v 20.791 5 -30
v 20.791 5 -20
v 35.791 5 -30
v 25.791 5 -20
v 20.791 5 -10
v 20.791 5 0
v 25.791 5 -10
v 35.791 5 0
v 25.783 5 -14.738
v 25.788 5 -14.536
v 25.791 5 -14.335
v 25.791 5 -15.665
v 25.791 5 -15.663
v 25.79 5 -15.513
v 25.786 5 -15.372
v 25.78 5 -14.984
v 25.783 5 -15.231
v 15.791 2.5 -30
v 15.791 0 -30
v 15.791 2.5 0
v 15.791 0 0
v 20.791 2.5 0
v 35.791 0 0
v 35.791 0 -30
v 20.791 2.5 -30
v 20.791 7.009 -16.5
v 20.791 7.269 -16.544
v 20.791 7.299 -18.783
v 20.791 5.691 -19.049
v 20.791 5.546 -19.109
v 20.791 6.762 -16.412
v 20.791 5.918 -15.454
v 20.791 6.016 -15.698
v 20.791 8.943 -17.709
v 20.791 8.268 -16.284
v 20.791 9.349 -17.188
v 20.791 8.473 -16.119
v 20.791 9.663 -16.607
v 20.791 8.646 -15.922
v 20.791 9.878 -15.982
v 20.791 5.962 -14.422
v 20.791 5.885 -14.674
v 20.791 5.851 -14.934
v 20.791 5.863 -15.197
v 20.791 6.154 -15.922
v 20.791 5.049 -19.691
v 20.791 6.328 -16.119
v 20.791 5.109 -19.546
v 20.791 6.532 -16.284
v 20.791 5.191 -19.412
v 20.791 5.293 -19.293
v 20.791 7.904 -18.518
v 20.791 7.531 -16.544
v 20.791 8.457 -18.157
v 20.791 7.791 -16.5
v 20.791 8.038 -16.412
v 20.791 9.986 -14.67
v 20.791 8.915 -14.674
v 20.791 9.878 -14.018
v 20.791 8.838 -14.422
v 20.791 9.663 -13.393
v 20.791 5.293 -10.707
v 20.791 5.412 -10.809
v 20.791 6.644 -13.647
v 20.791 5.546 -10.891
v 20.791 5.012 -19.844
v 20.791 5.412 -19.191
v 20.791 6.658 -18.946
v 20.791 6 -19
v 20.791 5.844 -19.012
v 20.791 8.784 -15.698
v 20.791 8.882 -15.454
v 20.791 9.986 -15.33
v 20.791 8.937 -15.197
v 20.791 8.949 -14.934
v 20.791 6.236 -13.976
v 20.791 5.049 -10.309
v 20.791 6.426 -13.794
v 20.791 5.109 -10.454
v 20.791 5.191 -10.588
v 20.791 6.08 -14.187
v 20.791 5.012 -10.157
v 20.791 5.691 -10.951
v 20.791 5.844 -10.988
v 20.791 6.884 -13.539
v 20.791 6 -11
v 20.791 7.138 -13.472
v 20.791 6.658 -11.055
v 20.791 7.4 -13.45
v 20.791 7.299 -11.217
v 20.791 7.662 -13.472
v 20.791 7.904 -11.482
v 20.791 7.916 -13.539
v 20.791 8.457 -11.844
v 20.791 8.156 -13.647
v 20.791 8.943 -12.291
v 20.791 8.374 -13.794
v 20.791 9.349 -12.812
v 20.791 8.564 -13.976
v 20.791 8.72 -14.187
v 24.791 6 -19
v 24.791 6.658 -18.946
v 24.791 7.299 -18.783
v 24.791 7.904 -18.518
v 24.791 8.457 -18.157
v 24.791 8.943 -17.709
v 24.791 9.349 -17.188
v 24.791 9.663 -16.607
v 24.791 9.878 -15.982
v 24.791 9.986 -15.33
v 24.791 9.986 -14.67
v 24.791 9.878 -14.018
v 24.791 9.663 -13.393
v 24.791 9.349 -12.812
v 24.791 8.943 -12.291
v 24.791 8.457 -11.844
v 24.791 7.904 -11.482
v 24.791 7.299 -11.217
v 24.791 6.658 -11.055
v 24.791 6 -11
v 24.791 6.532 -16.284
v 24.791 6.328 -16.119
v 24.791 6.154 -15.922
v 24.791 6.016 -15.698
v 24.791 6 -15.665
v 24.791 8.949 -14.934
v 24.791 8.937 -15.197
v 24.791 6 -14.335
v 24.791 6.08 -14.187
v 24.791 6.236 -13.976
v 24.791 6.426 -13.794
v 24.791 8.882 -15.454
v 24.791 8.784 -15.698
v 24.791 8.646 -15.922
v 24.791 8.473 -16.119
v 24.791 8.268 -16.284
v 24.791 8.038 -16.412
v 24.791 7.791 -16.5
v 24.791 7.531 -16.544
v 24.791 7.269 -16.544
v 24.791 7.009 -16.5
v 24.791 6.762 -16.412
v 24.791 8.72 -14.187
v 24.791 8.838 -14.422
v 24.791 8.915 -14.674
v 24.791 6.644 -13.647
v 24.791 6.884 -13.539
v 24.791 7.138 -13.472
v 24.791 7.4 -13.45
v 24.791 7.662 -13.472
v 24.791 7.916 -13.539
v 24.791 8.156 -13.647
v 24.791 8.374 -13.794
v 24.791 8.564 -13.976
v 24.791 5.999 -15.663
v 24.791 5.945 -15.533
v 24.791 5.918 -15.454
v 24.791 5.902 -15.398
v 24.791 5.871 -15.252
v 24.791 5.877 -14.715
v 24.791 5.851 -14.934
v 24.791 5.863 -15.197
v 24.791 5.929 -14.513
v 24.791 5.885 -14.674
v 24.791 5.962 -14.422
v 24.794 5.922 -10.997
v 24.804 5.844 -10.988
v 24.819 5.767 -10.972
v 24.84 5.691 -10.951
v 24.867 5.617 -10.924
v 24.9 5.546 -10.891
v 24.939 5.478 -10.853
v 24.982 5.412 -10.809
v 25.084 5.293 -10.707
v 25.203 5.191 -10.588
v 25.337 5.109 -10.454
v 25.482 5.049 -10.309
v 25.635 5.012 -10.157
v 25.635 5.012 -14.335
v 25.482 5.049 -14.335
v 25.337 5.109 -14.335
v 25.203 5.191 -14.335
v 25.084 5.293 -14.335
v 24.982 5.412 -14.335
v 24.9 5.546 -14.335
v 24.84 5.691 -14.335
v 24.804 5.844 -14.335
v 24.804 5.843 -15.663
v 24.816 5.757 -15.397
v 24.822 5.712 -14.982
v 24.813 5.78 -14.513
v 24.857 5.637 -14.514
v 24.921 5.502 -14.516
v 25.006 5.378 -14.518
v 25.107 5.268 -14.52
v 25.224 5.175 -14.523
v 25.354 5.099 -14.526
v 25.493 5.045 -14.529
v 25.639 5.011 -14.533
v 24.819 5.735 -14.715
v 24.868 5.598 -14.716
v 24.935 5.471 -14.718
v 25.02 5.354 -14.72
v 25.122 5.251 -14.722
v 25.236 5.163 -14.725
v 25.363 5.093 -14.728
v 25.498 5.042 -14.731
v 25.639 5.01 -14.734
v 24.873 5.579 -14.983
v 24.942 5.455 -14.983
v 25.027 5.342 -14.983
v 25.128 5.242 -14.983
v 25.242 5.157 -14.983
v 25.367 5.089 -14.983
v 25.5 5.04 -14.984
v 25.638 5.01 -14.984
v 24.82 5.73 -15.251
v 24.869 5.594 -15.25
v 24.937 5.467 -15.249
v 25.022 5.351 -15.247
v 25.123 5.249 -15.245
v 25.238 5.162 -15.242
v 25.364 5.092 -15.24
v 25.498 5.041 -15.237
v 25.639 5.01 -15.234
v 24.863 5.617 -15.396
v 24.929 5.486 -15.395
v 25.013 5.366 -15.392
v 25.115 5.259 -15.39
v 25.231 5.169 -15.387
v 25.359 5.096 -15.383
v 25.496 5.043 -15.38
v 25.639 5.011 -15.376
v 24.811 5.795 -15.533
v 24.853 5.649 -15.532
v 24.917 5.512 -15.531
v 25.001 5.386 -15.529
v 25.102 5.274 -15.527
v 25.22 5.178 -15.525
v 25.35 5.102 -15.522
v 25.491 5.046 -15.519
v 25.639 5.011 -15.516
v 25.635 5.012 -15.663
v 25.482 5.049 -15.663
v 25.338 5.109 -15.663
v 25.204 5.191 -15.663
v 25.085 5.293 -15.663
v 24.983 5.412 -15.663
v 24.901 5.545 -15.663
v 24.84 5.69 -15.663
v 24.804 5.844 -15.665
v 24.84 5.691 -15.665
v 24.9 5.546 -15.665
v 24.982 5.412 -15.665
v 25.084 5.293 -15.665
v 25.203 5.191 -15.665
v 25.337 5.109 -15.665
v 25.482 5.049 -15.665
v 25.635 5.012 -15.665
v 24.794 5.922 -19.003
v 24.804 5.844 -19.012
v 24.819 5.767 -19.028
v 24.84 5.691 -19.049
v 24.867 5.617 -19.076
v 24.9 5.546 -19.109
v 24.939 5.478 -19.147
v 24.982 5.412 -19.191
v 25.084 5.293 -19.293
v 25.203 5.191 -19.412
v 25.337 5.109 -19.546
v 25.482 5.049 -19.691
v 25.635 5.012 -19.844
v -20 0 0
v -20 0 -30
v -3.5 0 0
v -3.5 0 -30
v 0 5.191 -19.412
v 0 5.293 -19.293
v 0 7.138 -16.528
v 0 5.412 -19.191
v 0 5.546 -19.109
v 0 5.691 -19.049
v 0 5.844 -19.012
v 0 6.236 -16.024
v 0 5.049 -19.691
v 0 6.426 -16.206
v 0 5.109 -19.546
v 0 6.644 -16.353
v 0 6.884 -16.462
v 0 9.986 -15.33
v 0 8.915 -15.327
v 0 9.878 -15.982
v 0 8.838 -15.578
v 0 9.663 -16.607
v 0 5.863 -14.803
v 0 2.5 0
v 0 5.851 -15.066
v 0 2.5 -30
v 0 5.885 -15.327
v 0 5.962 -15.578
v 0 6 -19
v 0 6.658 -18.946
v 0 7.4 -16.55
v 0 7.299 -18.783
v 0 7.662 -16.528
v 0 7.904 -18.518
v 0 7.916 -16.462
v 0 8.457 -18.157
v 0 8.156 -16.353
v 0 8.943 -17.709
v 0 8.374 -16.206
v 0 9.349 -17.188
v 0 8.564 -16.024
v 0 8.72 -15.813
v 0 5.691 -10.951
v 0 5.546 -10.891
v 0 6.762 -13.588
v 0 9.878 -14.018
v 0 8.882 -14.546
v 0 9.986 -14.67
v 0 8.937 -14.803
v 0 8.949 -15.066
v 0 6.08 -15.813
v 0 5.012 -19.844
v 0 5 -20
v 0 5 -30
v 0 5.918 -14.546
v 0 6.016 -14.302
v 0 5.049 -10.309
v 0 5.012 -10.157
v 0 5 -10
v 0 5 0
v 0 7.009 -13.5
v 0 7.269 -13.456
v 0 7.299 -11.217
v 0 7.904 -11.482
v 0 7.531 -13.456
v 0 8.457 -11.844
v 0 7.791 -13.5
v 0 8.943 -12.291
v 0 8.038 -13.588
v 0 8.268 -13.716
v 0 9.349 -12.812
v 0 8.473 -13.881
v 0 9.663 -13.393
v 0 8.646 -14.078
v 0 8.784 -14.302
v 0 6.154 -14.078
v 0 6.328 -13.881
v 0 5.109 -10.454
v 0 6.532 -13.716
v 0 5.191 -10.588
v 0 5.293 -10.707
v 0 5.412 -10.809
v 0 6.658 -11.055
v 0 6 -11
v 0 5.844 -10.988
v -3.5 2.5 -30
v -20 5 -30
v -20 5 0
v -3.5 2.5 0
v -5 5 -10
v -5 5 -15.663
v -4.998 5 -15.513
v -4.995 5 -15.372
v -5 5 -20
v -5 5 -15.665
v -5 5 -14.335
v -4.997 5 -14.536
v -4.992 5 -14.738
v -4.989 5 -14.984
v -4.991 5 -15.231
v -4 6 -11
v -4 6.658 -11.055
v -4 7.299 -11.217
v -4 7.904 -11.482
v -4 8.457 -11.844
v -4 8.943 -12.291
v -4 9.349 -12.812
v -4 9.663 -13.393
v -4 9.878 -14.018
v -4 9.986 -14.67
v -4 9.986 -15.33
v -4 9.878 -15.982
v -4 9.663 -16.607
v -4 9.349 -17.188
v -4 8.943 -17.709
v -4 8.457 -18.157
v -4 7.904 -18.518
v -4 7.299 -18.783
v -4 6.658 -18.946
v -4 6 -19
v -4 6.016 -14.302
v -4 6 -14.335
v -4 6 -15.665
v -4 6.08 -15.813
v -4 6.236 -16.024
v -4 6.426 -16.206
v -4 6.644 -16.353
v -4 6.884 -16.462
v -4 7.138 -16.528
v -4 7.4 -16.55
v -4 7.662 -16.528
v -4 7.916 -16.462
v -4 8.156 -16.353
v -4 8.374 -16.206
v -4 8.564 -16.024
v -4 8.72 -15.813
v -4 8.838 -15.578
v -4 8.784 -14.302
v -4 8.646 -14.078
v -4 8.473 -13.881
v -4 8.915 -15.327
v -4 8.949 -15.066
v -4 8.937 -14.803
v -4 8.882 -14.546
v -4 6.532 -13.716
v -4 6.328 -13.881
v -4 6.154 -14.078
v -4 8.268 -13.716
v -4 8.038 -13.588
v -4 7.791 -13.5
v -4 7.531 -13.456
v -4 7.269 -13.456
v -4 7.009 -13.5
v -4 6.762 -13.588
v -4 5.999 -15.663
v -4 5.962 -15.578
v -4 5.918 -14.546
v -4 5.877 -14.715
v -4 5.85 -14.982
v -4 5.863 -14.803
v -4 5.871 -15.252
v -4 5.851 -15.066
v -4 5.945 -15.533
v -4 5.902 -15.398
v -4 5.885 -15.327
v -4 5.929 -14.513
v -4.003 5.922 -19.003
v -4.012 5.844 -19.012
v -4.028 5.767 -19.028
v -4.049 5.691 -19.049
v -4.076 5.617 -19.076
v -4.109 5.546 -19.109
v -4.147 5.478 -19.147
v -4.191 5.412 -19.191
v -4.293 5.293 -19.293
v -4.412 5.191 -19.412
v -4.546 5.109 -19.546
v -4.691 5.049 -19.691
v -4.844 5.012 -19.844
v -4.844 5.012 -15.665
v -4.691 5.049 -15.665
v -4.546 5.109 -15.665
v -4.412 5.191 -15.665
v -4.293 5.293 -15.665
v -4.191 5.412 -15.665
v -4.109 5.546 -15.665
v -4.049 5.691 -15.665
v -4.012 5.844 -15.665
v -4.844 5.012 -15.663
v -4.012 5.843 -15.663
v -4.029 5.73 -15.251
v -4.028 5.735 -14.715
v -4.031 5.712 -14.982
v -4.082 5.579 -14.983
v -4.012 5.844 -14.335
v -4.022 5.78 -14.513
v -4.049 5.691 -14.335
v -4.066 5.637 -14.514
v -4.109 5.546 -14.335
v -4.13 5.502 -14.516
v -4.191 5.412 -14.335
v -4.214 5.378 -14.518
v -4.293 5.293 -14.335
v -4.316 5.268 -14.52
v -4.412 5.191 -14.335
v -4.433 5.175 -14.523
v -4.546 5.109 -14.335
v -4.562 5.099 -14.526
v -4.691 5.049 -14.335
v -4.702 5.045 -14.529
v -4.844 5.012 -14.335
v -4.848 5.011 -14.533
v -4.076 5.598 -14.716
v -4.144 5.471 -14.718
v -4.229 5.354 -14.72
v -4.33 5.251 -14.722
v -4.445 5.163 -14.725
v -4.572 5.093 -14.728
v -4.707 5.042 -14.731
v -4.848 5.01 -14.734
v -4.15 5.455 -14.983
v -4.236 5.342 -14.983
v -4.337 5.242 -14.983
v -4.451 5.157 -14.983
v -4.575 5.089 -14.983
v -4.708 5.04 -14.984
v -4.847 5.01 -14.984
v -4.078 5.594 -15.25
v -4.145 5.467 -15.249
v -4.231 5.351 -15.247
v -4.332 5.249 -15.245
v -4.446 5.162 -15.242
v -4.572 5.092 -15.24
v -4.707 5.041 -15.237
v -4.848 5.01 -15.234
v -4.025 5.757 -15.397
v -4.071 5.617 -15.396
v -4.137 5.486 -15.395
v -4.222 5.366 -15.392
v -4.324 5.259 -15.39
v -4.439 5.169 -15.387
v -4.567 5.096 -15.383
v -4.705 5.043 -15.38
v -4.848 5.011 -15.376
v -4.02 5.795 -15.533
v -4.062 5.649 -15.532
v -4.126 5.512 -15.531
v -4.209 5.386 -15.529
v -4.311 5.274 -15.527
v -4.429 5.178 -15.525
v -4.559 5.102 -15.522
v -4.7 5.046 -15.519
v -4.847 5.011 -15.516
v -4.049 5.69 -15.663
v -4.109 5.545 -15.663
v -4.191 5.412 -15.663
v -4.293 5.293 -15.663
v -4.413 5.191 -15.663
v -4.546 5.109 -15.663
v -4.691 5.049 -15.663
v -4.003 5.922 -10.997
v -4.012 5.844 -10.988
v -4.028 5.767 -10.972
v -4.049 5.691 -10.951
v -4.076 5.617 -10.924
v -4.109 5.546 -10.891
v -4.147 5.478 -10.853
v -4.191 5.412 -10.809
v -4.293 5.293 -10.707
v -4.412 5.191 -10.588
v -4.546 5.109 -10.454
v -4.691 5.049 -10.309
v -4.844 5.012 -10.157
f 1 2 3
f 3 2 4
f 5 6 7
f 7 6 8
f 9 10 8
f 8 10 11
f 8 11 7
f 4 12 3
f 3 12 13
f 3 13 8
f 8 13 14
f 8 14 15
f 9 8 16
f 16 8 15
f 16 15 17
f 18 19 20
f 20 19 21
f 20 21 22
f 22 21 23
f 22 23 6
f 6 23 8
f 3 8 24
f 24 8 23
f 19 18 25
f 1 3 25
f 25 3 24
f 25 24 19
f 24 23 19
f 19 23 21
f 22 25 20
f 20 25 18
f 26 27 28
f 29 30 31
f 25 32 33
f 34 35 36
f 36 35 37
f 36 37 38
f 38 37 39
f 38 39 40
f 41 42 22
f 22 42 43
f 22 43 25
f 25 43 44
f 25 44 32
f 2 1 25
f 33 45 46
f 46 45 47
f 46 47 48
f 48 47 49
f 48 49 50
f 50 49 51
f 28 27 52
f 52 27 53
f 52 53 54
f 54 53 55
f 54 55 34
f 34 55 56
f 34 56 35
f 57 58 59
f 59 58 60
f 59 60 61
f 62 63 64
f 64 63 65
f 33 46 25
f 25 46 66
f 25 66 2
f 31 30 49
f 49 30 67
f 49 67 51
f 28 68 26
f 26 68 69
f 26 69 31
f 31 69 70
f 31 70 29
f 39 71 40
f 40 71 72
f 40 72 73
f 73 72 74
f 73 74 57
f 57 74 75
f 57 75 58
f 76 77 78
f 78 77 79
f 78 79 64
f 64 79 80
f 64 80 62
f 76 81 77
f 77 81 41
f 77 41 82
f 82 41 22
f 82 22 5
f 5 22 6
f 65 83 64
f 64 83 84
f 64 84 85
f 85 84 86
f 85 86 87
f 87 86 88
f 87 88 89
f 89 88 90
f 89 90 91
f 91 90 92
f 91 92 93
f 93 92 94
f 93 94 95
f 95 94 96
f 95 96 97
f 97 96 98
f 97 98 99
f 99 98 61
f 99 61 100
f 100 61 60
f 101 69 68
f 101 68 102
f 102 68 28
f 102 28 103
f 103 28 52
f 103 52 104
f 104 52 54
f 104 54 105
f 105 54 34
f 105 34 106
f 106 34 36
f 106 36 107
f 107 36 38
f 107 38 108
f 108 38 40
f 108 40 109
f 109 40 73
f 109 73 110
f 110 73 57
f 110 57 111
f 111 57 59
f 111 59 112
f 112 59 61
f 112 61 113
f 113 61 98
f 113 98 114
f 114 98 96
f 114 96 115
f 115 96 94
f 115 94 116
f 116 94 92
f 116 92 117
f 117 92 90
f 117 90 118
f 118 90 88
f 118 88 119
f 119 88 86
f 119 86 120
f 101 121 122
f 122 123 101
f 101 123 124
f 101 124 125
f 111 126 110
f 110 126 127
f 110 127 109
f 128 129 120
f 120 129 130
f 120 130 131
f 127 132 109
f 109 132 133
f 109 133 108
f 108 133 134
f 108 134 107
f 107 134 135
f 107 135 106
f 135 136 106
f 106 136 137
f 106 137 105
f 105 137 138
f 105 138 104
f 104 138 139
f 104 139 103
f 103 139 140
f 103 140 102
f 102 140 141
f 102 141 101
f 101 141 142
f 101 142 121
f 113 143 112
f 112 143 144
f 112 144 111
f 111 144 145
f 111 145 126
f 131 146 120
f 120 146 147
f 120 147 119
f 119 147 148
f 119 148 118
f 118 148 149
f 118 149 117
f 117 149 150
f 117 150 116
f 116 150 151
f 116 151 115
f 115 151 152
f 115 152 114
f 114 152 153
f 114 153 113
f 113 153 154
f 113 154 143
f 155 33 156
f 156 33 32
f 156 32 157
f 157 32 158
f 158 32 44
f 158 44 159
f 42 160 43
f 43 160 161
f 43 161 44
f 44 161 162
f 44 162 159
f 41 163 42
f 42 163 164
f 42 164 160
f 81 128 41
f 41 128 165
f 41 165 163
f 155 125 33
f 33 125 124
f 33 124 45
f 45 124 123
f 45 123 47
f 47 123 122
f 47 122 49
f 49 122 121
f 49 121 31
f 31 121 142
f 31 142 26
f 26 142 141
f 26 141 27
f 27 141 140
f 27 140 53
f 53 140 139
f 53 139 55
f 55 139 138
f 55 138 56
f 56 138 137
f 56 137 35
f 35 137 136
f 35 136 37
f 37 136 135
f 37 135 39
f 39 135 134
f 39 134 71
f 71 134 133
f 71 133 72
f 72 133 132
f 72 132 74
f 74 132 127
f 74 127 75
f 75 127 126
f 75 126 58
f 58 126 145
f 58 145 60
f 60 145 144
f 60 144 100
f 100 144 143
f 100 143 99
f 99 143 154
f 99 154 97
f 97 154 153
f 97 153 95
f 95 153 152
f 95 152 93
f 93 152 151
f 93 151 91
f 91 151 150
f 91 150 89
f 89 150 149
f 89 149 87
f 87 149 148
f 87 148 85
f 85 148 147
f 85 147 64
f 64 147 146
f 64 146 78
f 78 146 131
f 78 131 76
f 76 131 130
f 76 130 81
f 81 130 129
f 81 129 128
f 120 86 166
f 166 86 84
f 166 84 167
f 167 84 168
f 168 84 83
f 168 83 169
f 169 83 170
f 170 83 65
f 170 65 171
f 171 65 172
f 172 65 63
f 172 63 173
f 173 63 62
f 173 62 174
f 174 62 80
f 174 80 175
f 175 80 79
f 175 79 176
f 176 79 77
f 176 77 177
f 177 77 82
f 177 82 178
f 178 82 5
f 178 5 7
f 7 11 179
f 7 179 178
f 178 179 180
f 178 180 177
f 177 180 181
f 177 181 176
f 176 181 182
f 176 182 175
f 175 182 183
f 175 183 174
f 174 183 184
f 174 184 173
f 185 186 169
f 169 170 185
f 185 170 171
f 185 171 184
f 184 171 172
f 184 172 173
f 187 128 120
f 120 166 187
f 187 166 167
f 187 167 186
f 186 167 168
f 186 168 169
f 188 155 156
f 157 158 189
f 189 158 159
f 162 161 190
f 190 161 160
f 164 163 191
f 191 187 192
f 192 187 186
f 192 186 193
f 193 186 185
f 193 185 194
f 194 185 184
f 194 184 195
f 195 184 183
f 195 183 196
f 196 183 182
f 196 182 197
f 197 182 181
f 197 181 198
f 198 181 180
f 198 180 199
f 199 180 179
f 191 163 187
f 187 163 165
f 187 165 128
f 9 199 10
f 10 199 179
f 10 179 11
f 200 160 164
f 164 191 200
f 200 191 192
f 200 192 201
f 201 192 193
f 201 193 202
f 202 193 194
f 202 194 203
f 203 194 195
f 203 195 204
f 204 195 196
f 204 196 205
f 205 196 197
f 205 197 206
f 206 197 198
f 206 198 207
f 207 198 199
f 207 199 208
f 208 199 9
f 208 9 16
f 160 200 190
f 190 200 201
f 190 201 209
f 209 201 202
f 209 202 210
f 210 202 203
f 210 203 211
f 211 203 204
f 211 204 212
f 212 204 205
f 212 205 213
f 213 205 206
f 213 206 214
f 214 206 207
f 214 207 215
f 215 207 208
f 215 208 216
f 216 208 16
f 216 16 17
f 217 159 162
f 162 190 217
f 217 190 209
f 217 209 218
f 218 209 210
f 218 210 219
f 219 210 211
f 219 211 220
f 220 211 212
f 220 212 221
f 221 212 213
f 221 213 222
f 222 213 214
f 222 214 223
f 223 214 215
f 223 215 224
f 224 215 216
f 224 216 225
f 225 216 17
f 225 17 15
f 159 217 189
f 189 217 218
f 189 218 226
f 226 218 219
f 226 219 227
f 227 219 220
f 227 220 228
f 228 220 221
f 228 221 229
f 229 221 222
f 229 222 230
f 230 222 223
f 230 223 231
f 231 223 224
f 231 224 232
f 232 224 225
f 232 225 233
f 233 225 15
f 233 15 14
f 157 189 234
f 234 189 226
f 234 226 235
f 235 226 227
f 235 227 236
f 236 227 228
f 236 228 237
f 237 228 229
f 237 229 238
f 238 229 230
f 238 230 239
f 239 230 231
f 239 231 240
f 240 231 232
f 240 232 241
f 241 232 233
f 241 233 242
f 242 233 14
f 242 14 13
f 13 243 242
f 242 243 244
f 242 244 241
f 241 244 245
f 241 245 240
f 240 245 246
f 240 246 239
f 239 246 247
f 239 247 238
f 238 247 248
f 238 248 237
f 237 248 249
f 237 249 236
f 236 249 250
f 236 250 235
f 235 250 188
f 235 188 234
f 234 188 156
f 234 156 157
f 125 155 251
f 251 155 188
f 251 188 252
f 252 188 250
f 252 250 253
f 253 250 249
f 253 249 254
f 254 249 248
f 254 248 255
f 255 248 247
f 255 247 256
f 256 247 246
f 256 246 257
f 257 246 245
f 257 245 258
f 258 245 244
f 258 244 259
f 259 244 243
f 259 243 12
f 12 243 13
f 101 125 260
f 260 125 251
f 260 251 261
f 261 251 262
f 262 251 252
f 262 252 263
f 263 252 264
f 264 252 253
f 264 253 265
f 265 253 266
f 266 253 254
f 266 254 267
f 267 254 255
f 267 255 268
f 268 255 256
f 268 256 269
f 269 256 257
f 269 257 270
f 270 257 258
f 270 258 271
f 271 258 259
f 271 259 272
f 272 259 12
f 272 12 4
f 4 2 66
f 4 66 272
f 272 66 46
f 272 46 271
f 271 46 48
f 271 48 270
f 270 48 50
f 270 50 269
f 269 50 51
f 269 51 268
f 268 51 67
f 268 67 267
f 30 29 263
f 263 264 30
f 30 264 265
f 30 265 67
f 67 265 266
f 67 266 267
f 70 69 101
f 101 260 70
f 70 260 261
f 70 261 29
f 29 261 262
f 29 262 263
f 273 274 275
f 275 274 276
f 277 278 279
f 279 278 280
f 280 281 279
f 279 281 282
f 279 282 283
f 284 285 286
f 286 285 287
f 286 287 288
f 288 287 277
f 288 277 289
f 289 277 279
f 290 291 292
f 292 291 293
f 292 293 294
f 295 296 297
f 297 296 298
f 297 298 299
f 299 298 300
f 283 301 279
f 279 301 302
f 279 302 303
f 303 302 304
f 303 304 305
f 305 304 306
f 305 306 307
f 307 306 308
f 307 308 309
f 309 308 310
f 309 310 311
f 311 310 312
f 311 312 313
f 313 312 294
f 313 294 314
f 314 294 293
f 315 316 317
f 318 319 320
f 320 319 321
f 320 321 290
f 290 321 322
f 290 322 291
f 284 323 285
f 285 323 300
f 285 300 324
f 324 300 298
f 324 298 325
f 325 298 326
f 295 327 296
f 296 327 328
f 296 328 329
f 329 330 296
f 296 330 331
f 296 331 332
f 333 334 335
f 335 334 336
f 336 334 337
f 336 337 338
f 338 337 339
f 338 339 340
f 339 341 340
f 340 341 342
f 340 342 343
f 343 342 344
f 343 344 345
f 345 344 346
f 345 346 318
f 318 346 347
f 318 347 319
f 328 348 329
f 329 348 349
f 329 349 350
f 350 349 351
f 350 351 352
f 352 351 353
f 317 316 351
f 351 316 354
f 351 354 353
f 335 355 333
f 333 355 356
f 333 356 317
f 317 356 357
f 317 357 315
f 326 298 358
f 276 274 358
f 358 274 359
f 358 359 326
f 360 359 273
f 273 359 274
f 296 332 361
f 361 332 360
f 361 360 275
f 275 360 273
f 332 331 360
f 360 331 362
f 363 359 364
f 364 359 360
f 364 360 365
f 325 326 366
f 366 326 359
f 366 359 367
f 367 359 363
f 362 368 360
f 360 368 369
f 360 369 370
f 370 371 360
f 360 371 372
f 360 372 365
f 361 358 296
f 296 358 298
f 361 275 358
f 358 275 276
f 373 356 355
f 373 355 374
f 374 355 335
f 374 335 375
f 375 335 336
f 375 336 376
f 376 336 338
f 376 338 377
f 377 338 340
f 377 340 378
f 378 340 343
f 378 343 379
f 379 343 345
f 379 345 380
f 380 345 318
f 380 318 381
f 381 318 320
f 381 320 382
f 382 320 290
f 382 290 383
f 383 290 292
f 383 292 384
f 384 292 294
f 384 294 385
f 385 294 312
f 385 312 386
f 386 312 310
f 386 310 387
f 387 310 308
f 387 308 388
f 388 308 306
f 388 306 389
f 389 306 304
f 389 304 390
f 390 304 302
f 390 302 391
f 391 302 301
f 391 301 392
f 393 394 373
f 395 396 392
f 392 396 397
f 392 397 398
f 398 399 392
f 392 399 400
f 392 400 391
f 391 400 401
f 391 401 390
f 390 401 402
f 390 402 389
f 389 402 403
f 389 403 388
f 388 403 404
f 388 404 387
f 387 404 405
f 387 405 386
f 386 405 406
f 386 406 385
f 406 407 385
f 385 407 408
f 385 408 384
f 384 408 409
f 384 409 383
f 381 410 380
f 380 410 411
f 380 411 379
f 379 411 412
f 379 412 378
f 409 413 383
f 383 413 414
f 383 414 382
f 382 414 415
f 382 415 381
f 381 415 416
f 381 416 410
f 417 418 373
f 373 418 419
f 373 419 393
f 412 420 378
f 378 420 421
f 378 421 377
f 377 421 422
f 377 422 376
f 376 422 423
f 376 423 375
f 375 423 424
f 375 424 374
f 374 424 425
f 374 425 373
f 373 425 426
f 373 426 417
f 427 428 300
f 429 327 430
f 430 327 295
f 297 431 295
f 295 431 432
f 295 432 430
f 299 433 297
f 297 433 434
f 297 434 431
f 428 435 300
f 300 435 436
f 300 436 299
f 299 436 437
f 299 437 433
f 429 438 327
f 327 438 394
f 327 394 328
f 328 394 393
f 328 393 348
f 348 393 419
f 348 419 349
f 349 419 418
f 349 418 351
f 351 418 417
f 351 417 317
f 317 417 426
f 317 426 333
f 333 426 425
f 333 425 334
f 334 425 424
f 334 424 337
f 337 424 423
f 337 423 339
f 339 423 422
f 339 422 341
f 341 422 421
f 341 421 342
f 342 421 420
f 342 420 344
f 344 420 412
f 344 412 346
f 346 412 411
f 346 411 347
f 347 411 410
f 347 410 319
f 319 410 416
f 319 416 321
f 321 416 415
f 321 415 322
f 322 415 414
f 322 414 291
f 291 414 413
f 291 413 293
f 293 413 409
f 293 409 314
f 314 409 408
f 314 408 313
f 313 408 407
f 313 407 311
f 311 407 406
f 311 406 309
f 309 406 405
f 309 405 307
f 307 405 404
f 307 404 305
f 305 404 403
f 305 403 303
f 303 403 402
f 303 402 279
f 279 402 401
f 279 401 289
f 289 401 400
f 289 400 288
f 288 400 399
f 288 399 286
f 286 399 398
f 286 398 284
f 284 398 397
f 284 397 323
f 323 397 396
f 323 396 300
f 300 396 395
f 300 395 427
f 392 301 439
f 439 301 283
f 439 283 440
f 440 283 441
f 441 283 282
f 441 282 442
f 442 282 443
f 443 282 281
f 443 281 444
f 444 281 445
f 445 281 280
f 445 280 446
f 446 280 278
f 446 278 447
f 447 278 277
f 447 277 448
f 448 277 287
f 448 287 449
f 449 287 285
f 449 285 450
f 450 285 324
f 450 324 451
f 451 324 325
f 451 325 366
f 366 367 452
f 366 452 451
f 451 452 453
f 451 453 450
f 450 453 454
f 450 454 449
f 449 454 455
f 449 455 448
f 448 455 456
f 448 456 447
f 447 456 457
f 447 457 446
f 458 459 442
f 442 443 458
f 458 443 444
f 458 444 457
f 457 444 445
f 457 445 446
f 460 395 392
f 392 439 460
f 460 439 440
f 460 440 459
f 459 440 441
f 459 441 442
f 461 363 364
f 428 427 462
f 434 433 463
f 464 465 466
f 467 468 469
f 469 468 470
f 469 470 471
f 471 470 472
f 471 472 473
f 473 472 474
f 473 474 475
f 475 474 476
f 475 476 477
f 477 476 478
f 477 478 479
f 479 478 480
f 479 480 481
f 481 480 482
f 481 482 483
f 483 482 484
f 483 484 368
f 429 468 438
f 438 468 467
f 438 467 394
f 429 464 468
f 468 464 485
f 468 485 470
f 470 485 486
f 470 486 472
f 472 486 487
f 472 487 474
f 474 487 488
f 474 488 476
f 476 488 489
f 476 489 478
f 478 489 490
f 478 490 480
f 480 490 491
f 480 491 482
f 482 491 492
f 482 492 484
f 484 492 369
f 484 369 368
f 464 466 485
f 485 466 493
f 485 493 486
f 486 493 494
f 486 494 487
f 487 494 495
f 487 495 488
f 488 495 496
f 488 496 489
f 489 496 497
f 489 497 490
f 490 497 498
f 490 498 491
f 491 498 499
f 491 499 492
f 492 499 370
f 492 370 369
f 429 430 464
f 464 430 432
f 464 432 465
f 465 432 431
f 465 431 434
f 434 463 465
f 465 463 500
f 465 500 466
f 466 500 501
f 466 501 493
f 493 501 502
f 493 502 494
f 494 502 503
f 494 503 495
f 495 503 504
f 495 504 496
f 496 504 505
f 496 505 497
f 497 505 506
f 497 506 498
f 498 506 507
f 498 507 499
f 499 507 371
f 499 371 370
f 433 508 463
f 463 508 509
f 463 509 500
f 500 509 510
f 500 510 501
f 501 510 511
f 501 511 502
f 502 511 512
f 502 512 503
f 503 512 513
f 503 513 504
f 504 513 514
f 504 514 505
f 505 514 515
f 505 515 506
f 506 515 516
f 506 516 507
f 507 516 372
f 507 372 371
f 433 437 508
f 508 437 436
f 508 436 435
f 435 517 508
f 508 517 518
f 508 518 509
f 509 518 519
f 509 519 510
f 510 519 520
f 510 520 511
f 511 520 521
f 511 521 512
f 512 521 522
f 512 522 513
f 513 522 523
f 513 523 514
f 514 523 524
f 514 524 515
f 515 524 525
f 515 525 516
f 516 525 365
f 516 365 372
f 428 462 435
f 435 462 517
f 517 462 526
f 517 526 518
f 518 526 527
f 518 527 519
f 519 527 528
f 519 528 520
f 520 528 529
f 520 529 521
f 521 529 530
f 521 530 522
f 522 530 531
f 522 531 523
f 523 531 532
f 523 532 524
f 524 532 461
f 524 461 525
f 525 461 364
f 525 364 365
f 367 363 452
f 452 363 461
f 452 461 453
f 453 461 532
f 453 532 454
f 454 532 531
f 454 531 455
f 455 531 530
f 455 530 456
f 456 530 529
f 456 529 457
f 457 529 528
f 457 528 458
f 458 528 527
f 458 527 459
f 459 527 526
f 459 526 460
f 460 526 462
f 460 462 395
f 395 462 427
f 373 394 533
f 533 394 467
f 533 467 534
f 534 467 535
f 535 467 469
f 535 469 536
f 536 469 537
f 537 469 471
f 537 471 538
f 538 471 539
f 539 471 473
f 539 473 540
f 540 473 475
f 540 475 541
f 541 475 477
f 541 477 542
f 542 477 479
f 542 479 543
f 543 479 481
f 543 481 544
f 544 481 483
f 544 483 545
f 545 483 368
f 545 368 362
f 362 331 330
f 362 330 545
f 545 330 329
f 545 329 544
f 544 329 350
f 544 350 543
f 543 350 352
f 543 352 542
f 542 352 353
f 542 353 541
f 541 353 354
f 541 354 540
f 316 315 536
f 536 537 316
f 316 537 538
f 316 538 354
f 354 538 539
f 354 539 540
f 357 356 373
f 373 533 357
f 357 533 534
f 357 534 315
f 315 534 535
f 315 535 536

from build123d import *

# Parameters (mm, degrees)
SKETCH1_W             = 20
SKETCH1_H             = 30
BOSS_EXTRUDE1_DEPTH   = 5
BOSS_EXTRUDE1_2_DEPTH = 5
SKETCH2_W             = 30
SKETCH2_H             = 2.5
CUT_EXTRUDE1_DEPTH    = 3.5
SKETCH3_W             = 30
SKETCH3_H             = 2.5
CUT_EXTRUDE2_DEPTH    = 5
SKETCH4_R             = 1.55
BOSS_EXTRUDE2_DEPTH   = 4
FILLET1_R             = 1
SKETCH5_R             = 1.55
BOSS_EXTRUDE3_DEPTH   = 4
FILLET2_R             = 1


with BuildPart() as part:
    # Sketch1 → Boss-Extrude1 (new body)
    with BuildSketch(Plane(origin=(0, 0, 0), x_dir=(1, 0, 0), z_dir=(0, 1, 0))):
        with Locations((-10, 15)):
            Rectangle(SKETCH1_W, SKETCH1_H)
    extrude(amount=BOSS_EXTRUDE1_DEPTH)

    # Sketch2 → Cut-Extrude1 (cut)
    with BuildSketch(Plane(origin=(0, 0, 0), x_dir=(0, 0, -1), z_dir=(1, 0, 0))):
        with Locations((15, 1.25)):
            Rectangle(SKETCH2_W, SKETCH2_H)
    extrude(amount=-CUT_EXTRUDE1_DEPTH, mode=Mode.SUBTRACT)

    # Sketch5 → Boss-Extrude3 (add)
    with BuildSketch(Plane(origin=(0, 0, 0), x_dir=(0, 0, -1), z_dir=(1, 0, 0))):
        with BuildLine():
            Line((11, 5), (19, 5))
            Line((19, 5), (19, 6))
            ThreePointArc((19, 6), (15, 10), (11, 6))
            Line((11, 6), (11, 5))
        make_face()
        with Locations(Location((15, 7.4, 0), (0, 0, 180))):
            Circle(SKETCH5_R, mode=Mode.SUBTRACT)
    extrude(amount=-BOSS_EXTRUDE3_DEPTH)

    # Fillet2
    fillet2_edges = [part.edges().sort_by_distance(p)[0] for p in [
        (-2, 5, -11),
        (-4, 5, -15),
        (-2, 5, -19),
    ]]
    fillet(fillet2_edges, radius=FILLET2_R - 0.0001)  # a hair under: the kernel refuses the full size


with BuildPart() as body_2:
    # Sketch1 → Boss-Extrude1 2 (new body)
    with BuildSketch(Plane(origin=(0, 0, 0), x_dir=(1, 0, 0), z_dir=(0, 1, 0))):
        with Locations((25.791271198, 15)):
            Rectangle(SKETCH1_W, SKETCH1_H)
    extrude(amount=BOSS_EXTRUDE1_2_DEPTH)

    # Sketch3 → Cut-Extrude2 (cut)
    with BuildSketch(Plane.ZY.offset(-15.791271198)):
        with Locations((-15, 3.75)):
            Rectangle(SKETCH3_W, SKETCH3_H)
    extrude(amount=-CUT_EXTRUDE2_DEPTH, mode=Mode.SUBTRACT)

    # Sketch4 → Boss-Extrude2 (add)
    with BuildSketch(Plane.ZY.offset(-20.791271198)):
        with BuildLine():
            Line((-19, 5), (-11, 5))
            Line((-11, 5), (-11, 6))
            ThreePointArc((-11, 6), (-15, 10), (-19, 6))
            Line((-19, 6), (-19, 5))
        make_face()
        with Locations((-15, 7.4)):
            Circle(SKETCH4_R, mode=Mode.SUBTRACT)
    extrude(amount=-BOSS_EXTRUDE2_DEPTH)

    # Fillet1
    fillet1_edges = [body_2.edges().sort_by_distance(p)[0] for p in [
        (22.791271198, 5, -19),
        (24.791271198, 5, -15),
        (22.791271198, 5, -11),
    ]]
    fillet(fillet1_edges, radius=FILLET1_R - 0.0001)  # a hair under: the kernel refuses the full size


solid = Compound([part.part, body_2.part])
